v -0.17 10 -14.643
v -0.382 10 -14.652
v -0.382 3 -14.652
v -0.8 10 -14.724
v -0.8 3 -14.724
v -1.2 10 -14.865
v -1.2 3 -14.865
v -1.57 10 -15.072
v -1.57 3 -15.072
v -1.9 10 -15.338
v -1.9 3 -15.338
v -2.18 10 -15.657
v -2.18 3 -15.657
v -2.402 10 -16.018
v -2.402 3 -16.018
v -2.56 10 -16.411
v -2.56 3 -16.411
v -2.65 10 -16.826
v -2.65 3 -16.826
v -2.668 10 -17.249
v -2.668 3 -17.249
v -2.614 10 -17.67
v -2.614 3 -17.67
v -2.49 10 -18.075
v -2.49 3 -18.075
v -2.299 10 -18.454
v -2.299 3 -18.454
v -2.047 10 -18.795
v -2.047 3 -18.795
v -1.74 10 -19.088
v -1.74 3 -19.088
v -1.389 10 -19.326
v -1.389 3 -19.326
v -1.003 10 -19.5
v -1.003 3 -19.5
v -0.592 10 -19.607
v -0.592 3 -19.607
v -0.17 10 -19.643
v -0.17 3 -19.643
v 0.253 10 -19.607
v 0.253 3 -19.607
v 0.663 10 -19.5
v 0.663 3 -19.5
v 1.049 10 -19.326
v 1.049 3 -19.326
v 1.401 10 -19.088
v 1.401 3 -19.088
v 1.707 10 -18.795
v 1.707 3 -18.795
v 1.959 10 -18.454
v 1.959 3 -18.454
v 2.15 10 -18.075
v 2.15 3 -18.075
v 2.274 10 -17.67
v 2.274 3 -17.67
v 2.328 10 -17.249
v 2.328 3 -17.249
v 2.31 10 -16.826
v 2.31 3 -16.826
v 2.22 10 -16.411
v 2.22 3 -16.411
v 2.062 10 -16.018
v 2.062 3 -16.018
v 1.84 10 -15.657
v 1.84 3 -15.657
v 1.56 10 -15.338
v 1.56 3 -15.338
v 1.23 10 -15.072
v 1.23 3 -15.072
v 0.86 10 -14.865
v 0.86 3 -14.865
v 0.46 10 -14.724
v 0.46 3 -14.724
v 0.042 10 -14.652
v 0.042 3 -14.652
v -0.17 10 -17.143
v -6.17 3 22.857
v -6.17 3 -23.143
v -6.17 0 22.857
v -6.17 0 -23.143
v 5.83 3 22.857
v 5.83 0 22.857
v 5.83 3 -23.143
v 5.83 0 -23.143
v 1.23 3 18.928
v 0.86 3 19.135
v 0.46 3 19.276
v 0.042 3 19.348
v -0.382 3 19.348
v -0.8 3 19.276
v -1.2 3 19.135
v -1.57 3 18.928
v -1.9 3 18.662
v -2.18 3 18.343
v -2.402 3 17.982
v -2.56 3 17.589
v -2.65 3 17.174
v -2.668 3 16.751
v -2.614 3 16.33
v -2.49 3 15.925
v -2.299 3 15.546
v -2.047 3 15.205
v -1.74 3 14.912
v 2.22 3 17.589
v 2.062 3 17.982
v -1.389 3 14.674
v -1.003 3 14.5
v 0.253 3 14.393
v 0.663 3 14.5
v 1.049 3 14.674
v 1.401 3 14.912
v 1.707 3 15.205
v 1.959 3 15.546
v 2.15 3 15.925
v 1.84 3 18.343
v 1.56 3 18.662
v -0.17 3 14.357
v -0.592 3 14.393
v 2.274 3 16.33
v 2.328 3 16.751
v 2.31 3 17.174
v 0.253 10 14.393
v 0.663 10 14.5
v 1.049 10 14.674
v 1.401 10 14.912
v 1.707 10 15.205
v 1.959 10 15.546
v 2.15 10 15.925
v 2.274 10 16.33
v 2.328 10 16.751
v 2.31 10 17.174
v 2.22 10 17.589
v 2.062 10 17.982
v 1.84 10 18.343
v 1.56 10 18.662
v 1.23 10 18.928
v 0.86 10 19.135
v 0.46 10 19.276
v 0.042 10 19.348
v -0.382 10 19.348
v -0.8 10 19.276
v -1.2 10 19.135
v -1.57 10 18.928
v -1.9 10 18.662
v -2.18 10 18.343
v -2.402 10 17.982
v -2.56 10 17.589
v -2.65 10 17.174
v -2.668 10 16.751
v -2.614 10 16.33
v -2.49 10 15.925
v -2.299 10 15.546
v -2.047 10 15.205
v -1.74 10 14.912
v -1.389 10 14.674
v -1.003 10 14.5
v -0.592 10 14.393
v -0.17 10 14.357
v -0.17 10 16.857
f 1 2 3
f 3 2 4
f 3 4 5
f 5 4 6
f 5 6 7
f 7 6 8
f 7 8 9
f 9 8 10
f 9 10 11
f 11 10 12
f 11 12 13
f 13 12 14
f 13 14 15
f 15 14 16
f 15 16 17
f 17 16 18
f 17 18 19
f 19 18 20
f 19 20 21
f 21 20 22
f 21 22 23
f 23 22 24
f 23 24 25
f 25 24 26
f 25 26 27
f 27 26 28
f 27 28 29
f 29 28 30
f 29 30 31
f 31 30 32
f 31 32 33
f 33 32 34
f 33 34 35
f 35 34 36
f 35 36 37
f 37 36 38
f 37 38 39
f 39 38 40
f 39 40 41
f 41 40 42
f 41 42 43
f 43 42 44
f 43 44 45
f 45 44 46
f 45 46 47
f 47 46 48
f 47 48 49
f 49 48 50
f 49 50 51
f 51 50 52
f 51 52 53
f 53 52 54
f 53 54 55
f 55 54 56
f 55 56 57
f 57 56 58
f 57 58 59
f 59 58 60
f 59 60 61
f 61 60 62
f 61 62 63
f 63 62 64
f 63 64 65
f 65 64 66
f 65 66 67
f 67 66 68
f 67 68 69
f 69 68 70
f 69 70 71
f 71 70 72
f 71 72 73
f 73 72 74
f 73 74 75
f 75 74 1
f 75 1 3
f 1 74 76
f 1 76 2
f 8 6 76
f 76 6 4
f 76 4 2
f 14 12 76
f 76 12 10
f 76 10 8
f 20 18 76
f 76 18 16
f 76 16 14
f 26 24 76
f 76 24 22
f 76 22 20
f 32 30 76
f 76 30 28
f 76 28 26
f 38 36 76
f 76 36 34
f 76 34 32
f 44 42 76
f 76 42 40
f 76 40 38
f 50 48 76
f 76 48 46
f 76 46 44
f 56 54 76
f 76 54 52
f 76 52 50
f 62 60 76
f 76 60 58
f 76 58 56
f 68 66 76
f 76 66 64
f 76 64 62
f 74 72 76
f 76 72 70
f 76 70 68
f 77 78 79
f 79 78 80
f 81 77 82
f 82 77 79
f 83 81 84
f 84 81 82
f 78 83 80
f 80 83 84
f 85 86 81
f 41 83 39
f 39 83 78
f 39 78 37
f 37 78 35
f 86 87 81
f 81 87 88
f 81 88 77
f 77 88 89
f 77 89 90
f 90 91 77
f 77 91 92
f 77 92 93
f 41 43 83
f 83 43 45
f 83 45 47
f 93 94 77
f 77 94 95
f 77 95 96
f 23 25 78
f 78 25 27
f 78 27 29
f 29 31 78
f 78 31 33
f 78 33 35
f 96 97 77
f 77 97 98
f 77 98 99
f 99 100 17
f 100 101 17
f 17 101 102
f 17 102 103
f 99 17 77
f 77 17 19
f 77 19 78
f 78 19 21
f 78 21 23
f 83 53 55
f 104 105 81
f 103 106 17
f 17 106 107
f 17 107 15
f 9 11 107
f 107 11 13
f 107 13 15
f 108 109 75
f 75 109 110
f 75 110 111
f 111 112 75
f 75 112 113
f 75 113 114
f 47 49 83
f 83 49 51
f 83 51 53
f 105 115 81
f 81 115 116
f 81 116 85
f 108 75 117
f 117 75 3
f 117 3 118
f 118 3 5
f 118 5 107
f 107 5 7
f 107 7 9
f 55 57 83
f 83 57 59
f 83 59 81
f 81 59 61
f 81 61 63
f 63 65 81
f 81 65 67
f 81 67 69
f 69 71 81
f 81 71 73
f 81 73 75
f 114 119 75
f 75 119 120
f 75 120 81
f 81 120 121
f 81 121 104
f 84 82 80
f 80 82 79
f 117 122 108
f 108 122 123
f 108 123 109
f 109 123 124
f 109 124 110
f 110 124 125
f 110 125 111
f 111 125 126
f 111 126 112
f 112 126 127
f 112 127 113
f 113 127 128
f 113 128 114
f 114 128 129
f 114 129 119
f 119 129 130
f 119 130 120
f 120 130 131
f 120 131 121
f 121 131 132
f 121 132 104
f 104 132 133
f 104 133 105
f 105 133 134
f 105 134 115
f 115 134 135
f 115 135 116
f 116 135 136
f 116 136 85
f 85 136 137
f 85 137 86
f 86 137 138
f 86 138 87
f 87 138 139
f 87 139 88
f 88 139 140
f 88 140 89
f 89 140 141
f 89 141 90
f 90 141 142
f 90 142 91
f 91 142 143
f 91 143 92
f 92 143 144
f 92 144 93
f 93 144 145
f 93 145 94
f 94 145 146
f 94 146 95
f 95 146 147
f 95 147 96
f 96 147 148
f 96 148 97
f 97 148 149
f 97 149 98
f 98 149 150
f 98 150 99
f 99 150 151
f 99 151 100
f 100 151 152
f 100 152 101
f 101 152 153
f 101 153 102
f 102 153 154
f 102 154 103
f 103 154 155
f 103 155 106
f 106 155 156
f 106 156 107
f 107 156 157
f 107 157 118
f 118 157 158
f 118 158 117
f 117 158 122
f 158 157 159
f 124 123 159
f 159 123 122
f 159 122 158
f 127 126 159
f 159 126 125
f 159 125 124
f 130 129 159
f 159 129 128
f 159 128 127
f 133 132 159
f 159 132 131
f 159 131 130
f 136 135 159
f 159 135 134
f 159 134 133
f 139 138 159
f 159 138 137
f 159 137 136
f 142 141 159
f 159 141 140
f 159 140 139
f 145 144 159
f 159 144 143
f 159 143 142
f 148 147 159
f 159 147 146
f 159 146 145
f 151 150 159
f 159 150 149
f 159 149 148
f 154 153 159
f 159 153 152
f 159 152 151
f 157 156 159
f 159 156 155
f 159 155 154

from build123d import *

# Parameters (mm, degrees)
SKETCH3_R             = 2.5
BOSS_EXTRUDE4_DEPTH   = 10
BOSS_EXTRUDE4_2_DEPTH = 10
SKETCH2_W             = 12
SKETCH2_H             = 46
BOSS_EXTRUDE5_DEPTH   = 3


with BuildPart() as part:
    # Sketch3 → Boss-Extrude4 (new body)
    with BuildSketch(Plane(origin=(0, 0, 0), x_dir=(1, 0, 0), z_dir=(0, 1, 0))):
        with Locations((-0.169934853, 17.143306367)):
            Circle(SKETCH3_R)
    extrude(amount=BOSS_EXTRUDE4_DEPTH)



with BuildPart() as body_2:
    # Sketch3 → Boss-Extrude4 2 (new body)
    with BuildSketch(Plane(origin=(0, 0, 0), x_dir=(1, 0, 0), z_dir=(0, 1, 0))):
        with Locations((-0.169934853, -16.856693633)):
            Circle(SKETCH3_R)
    extrude(amount=BOSS_EXTRUDE4_2_DEPTH)


with BuildPart() as part_1:
    add(part.part)

    add(body_2.part)  # Boss-Extrude5 merges body 2
    # Sketch2 → Boss-Extrude5 (add)
    with BuildSketch(Plane(origin=(0, 0, 0), x_dir=(1, 0, 0), z_dir=(0, 1, 0))):
        with Locations((-0.169934853, 0.143306367)):
            Rectangle(SKETCH2_W, SKETCH2_H)
    extrude(amount=BOSS_EXTRUDE5_DEPTH)


solid = part_1.part
